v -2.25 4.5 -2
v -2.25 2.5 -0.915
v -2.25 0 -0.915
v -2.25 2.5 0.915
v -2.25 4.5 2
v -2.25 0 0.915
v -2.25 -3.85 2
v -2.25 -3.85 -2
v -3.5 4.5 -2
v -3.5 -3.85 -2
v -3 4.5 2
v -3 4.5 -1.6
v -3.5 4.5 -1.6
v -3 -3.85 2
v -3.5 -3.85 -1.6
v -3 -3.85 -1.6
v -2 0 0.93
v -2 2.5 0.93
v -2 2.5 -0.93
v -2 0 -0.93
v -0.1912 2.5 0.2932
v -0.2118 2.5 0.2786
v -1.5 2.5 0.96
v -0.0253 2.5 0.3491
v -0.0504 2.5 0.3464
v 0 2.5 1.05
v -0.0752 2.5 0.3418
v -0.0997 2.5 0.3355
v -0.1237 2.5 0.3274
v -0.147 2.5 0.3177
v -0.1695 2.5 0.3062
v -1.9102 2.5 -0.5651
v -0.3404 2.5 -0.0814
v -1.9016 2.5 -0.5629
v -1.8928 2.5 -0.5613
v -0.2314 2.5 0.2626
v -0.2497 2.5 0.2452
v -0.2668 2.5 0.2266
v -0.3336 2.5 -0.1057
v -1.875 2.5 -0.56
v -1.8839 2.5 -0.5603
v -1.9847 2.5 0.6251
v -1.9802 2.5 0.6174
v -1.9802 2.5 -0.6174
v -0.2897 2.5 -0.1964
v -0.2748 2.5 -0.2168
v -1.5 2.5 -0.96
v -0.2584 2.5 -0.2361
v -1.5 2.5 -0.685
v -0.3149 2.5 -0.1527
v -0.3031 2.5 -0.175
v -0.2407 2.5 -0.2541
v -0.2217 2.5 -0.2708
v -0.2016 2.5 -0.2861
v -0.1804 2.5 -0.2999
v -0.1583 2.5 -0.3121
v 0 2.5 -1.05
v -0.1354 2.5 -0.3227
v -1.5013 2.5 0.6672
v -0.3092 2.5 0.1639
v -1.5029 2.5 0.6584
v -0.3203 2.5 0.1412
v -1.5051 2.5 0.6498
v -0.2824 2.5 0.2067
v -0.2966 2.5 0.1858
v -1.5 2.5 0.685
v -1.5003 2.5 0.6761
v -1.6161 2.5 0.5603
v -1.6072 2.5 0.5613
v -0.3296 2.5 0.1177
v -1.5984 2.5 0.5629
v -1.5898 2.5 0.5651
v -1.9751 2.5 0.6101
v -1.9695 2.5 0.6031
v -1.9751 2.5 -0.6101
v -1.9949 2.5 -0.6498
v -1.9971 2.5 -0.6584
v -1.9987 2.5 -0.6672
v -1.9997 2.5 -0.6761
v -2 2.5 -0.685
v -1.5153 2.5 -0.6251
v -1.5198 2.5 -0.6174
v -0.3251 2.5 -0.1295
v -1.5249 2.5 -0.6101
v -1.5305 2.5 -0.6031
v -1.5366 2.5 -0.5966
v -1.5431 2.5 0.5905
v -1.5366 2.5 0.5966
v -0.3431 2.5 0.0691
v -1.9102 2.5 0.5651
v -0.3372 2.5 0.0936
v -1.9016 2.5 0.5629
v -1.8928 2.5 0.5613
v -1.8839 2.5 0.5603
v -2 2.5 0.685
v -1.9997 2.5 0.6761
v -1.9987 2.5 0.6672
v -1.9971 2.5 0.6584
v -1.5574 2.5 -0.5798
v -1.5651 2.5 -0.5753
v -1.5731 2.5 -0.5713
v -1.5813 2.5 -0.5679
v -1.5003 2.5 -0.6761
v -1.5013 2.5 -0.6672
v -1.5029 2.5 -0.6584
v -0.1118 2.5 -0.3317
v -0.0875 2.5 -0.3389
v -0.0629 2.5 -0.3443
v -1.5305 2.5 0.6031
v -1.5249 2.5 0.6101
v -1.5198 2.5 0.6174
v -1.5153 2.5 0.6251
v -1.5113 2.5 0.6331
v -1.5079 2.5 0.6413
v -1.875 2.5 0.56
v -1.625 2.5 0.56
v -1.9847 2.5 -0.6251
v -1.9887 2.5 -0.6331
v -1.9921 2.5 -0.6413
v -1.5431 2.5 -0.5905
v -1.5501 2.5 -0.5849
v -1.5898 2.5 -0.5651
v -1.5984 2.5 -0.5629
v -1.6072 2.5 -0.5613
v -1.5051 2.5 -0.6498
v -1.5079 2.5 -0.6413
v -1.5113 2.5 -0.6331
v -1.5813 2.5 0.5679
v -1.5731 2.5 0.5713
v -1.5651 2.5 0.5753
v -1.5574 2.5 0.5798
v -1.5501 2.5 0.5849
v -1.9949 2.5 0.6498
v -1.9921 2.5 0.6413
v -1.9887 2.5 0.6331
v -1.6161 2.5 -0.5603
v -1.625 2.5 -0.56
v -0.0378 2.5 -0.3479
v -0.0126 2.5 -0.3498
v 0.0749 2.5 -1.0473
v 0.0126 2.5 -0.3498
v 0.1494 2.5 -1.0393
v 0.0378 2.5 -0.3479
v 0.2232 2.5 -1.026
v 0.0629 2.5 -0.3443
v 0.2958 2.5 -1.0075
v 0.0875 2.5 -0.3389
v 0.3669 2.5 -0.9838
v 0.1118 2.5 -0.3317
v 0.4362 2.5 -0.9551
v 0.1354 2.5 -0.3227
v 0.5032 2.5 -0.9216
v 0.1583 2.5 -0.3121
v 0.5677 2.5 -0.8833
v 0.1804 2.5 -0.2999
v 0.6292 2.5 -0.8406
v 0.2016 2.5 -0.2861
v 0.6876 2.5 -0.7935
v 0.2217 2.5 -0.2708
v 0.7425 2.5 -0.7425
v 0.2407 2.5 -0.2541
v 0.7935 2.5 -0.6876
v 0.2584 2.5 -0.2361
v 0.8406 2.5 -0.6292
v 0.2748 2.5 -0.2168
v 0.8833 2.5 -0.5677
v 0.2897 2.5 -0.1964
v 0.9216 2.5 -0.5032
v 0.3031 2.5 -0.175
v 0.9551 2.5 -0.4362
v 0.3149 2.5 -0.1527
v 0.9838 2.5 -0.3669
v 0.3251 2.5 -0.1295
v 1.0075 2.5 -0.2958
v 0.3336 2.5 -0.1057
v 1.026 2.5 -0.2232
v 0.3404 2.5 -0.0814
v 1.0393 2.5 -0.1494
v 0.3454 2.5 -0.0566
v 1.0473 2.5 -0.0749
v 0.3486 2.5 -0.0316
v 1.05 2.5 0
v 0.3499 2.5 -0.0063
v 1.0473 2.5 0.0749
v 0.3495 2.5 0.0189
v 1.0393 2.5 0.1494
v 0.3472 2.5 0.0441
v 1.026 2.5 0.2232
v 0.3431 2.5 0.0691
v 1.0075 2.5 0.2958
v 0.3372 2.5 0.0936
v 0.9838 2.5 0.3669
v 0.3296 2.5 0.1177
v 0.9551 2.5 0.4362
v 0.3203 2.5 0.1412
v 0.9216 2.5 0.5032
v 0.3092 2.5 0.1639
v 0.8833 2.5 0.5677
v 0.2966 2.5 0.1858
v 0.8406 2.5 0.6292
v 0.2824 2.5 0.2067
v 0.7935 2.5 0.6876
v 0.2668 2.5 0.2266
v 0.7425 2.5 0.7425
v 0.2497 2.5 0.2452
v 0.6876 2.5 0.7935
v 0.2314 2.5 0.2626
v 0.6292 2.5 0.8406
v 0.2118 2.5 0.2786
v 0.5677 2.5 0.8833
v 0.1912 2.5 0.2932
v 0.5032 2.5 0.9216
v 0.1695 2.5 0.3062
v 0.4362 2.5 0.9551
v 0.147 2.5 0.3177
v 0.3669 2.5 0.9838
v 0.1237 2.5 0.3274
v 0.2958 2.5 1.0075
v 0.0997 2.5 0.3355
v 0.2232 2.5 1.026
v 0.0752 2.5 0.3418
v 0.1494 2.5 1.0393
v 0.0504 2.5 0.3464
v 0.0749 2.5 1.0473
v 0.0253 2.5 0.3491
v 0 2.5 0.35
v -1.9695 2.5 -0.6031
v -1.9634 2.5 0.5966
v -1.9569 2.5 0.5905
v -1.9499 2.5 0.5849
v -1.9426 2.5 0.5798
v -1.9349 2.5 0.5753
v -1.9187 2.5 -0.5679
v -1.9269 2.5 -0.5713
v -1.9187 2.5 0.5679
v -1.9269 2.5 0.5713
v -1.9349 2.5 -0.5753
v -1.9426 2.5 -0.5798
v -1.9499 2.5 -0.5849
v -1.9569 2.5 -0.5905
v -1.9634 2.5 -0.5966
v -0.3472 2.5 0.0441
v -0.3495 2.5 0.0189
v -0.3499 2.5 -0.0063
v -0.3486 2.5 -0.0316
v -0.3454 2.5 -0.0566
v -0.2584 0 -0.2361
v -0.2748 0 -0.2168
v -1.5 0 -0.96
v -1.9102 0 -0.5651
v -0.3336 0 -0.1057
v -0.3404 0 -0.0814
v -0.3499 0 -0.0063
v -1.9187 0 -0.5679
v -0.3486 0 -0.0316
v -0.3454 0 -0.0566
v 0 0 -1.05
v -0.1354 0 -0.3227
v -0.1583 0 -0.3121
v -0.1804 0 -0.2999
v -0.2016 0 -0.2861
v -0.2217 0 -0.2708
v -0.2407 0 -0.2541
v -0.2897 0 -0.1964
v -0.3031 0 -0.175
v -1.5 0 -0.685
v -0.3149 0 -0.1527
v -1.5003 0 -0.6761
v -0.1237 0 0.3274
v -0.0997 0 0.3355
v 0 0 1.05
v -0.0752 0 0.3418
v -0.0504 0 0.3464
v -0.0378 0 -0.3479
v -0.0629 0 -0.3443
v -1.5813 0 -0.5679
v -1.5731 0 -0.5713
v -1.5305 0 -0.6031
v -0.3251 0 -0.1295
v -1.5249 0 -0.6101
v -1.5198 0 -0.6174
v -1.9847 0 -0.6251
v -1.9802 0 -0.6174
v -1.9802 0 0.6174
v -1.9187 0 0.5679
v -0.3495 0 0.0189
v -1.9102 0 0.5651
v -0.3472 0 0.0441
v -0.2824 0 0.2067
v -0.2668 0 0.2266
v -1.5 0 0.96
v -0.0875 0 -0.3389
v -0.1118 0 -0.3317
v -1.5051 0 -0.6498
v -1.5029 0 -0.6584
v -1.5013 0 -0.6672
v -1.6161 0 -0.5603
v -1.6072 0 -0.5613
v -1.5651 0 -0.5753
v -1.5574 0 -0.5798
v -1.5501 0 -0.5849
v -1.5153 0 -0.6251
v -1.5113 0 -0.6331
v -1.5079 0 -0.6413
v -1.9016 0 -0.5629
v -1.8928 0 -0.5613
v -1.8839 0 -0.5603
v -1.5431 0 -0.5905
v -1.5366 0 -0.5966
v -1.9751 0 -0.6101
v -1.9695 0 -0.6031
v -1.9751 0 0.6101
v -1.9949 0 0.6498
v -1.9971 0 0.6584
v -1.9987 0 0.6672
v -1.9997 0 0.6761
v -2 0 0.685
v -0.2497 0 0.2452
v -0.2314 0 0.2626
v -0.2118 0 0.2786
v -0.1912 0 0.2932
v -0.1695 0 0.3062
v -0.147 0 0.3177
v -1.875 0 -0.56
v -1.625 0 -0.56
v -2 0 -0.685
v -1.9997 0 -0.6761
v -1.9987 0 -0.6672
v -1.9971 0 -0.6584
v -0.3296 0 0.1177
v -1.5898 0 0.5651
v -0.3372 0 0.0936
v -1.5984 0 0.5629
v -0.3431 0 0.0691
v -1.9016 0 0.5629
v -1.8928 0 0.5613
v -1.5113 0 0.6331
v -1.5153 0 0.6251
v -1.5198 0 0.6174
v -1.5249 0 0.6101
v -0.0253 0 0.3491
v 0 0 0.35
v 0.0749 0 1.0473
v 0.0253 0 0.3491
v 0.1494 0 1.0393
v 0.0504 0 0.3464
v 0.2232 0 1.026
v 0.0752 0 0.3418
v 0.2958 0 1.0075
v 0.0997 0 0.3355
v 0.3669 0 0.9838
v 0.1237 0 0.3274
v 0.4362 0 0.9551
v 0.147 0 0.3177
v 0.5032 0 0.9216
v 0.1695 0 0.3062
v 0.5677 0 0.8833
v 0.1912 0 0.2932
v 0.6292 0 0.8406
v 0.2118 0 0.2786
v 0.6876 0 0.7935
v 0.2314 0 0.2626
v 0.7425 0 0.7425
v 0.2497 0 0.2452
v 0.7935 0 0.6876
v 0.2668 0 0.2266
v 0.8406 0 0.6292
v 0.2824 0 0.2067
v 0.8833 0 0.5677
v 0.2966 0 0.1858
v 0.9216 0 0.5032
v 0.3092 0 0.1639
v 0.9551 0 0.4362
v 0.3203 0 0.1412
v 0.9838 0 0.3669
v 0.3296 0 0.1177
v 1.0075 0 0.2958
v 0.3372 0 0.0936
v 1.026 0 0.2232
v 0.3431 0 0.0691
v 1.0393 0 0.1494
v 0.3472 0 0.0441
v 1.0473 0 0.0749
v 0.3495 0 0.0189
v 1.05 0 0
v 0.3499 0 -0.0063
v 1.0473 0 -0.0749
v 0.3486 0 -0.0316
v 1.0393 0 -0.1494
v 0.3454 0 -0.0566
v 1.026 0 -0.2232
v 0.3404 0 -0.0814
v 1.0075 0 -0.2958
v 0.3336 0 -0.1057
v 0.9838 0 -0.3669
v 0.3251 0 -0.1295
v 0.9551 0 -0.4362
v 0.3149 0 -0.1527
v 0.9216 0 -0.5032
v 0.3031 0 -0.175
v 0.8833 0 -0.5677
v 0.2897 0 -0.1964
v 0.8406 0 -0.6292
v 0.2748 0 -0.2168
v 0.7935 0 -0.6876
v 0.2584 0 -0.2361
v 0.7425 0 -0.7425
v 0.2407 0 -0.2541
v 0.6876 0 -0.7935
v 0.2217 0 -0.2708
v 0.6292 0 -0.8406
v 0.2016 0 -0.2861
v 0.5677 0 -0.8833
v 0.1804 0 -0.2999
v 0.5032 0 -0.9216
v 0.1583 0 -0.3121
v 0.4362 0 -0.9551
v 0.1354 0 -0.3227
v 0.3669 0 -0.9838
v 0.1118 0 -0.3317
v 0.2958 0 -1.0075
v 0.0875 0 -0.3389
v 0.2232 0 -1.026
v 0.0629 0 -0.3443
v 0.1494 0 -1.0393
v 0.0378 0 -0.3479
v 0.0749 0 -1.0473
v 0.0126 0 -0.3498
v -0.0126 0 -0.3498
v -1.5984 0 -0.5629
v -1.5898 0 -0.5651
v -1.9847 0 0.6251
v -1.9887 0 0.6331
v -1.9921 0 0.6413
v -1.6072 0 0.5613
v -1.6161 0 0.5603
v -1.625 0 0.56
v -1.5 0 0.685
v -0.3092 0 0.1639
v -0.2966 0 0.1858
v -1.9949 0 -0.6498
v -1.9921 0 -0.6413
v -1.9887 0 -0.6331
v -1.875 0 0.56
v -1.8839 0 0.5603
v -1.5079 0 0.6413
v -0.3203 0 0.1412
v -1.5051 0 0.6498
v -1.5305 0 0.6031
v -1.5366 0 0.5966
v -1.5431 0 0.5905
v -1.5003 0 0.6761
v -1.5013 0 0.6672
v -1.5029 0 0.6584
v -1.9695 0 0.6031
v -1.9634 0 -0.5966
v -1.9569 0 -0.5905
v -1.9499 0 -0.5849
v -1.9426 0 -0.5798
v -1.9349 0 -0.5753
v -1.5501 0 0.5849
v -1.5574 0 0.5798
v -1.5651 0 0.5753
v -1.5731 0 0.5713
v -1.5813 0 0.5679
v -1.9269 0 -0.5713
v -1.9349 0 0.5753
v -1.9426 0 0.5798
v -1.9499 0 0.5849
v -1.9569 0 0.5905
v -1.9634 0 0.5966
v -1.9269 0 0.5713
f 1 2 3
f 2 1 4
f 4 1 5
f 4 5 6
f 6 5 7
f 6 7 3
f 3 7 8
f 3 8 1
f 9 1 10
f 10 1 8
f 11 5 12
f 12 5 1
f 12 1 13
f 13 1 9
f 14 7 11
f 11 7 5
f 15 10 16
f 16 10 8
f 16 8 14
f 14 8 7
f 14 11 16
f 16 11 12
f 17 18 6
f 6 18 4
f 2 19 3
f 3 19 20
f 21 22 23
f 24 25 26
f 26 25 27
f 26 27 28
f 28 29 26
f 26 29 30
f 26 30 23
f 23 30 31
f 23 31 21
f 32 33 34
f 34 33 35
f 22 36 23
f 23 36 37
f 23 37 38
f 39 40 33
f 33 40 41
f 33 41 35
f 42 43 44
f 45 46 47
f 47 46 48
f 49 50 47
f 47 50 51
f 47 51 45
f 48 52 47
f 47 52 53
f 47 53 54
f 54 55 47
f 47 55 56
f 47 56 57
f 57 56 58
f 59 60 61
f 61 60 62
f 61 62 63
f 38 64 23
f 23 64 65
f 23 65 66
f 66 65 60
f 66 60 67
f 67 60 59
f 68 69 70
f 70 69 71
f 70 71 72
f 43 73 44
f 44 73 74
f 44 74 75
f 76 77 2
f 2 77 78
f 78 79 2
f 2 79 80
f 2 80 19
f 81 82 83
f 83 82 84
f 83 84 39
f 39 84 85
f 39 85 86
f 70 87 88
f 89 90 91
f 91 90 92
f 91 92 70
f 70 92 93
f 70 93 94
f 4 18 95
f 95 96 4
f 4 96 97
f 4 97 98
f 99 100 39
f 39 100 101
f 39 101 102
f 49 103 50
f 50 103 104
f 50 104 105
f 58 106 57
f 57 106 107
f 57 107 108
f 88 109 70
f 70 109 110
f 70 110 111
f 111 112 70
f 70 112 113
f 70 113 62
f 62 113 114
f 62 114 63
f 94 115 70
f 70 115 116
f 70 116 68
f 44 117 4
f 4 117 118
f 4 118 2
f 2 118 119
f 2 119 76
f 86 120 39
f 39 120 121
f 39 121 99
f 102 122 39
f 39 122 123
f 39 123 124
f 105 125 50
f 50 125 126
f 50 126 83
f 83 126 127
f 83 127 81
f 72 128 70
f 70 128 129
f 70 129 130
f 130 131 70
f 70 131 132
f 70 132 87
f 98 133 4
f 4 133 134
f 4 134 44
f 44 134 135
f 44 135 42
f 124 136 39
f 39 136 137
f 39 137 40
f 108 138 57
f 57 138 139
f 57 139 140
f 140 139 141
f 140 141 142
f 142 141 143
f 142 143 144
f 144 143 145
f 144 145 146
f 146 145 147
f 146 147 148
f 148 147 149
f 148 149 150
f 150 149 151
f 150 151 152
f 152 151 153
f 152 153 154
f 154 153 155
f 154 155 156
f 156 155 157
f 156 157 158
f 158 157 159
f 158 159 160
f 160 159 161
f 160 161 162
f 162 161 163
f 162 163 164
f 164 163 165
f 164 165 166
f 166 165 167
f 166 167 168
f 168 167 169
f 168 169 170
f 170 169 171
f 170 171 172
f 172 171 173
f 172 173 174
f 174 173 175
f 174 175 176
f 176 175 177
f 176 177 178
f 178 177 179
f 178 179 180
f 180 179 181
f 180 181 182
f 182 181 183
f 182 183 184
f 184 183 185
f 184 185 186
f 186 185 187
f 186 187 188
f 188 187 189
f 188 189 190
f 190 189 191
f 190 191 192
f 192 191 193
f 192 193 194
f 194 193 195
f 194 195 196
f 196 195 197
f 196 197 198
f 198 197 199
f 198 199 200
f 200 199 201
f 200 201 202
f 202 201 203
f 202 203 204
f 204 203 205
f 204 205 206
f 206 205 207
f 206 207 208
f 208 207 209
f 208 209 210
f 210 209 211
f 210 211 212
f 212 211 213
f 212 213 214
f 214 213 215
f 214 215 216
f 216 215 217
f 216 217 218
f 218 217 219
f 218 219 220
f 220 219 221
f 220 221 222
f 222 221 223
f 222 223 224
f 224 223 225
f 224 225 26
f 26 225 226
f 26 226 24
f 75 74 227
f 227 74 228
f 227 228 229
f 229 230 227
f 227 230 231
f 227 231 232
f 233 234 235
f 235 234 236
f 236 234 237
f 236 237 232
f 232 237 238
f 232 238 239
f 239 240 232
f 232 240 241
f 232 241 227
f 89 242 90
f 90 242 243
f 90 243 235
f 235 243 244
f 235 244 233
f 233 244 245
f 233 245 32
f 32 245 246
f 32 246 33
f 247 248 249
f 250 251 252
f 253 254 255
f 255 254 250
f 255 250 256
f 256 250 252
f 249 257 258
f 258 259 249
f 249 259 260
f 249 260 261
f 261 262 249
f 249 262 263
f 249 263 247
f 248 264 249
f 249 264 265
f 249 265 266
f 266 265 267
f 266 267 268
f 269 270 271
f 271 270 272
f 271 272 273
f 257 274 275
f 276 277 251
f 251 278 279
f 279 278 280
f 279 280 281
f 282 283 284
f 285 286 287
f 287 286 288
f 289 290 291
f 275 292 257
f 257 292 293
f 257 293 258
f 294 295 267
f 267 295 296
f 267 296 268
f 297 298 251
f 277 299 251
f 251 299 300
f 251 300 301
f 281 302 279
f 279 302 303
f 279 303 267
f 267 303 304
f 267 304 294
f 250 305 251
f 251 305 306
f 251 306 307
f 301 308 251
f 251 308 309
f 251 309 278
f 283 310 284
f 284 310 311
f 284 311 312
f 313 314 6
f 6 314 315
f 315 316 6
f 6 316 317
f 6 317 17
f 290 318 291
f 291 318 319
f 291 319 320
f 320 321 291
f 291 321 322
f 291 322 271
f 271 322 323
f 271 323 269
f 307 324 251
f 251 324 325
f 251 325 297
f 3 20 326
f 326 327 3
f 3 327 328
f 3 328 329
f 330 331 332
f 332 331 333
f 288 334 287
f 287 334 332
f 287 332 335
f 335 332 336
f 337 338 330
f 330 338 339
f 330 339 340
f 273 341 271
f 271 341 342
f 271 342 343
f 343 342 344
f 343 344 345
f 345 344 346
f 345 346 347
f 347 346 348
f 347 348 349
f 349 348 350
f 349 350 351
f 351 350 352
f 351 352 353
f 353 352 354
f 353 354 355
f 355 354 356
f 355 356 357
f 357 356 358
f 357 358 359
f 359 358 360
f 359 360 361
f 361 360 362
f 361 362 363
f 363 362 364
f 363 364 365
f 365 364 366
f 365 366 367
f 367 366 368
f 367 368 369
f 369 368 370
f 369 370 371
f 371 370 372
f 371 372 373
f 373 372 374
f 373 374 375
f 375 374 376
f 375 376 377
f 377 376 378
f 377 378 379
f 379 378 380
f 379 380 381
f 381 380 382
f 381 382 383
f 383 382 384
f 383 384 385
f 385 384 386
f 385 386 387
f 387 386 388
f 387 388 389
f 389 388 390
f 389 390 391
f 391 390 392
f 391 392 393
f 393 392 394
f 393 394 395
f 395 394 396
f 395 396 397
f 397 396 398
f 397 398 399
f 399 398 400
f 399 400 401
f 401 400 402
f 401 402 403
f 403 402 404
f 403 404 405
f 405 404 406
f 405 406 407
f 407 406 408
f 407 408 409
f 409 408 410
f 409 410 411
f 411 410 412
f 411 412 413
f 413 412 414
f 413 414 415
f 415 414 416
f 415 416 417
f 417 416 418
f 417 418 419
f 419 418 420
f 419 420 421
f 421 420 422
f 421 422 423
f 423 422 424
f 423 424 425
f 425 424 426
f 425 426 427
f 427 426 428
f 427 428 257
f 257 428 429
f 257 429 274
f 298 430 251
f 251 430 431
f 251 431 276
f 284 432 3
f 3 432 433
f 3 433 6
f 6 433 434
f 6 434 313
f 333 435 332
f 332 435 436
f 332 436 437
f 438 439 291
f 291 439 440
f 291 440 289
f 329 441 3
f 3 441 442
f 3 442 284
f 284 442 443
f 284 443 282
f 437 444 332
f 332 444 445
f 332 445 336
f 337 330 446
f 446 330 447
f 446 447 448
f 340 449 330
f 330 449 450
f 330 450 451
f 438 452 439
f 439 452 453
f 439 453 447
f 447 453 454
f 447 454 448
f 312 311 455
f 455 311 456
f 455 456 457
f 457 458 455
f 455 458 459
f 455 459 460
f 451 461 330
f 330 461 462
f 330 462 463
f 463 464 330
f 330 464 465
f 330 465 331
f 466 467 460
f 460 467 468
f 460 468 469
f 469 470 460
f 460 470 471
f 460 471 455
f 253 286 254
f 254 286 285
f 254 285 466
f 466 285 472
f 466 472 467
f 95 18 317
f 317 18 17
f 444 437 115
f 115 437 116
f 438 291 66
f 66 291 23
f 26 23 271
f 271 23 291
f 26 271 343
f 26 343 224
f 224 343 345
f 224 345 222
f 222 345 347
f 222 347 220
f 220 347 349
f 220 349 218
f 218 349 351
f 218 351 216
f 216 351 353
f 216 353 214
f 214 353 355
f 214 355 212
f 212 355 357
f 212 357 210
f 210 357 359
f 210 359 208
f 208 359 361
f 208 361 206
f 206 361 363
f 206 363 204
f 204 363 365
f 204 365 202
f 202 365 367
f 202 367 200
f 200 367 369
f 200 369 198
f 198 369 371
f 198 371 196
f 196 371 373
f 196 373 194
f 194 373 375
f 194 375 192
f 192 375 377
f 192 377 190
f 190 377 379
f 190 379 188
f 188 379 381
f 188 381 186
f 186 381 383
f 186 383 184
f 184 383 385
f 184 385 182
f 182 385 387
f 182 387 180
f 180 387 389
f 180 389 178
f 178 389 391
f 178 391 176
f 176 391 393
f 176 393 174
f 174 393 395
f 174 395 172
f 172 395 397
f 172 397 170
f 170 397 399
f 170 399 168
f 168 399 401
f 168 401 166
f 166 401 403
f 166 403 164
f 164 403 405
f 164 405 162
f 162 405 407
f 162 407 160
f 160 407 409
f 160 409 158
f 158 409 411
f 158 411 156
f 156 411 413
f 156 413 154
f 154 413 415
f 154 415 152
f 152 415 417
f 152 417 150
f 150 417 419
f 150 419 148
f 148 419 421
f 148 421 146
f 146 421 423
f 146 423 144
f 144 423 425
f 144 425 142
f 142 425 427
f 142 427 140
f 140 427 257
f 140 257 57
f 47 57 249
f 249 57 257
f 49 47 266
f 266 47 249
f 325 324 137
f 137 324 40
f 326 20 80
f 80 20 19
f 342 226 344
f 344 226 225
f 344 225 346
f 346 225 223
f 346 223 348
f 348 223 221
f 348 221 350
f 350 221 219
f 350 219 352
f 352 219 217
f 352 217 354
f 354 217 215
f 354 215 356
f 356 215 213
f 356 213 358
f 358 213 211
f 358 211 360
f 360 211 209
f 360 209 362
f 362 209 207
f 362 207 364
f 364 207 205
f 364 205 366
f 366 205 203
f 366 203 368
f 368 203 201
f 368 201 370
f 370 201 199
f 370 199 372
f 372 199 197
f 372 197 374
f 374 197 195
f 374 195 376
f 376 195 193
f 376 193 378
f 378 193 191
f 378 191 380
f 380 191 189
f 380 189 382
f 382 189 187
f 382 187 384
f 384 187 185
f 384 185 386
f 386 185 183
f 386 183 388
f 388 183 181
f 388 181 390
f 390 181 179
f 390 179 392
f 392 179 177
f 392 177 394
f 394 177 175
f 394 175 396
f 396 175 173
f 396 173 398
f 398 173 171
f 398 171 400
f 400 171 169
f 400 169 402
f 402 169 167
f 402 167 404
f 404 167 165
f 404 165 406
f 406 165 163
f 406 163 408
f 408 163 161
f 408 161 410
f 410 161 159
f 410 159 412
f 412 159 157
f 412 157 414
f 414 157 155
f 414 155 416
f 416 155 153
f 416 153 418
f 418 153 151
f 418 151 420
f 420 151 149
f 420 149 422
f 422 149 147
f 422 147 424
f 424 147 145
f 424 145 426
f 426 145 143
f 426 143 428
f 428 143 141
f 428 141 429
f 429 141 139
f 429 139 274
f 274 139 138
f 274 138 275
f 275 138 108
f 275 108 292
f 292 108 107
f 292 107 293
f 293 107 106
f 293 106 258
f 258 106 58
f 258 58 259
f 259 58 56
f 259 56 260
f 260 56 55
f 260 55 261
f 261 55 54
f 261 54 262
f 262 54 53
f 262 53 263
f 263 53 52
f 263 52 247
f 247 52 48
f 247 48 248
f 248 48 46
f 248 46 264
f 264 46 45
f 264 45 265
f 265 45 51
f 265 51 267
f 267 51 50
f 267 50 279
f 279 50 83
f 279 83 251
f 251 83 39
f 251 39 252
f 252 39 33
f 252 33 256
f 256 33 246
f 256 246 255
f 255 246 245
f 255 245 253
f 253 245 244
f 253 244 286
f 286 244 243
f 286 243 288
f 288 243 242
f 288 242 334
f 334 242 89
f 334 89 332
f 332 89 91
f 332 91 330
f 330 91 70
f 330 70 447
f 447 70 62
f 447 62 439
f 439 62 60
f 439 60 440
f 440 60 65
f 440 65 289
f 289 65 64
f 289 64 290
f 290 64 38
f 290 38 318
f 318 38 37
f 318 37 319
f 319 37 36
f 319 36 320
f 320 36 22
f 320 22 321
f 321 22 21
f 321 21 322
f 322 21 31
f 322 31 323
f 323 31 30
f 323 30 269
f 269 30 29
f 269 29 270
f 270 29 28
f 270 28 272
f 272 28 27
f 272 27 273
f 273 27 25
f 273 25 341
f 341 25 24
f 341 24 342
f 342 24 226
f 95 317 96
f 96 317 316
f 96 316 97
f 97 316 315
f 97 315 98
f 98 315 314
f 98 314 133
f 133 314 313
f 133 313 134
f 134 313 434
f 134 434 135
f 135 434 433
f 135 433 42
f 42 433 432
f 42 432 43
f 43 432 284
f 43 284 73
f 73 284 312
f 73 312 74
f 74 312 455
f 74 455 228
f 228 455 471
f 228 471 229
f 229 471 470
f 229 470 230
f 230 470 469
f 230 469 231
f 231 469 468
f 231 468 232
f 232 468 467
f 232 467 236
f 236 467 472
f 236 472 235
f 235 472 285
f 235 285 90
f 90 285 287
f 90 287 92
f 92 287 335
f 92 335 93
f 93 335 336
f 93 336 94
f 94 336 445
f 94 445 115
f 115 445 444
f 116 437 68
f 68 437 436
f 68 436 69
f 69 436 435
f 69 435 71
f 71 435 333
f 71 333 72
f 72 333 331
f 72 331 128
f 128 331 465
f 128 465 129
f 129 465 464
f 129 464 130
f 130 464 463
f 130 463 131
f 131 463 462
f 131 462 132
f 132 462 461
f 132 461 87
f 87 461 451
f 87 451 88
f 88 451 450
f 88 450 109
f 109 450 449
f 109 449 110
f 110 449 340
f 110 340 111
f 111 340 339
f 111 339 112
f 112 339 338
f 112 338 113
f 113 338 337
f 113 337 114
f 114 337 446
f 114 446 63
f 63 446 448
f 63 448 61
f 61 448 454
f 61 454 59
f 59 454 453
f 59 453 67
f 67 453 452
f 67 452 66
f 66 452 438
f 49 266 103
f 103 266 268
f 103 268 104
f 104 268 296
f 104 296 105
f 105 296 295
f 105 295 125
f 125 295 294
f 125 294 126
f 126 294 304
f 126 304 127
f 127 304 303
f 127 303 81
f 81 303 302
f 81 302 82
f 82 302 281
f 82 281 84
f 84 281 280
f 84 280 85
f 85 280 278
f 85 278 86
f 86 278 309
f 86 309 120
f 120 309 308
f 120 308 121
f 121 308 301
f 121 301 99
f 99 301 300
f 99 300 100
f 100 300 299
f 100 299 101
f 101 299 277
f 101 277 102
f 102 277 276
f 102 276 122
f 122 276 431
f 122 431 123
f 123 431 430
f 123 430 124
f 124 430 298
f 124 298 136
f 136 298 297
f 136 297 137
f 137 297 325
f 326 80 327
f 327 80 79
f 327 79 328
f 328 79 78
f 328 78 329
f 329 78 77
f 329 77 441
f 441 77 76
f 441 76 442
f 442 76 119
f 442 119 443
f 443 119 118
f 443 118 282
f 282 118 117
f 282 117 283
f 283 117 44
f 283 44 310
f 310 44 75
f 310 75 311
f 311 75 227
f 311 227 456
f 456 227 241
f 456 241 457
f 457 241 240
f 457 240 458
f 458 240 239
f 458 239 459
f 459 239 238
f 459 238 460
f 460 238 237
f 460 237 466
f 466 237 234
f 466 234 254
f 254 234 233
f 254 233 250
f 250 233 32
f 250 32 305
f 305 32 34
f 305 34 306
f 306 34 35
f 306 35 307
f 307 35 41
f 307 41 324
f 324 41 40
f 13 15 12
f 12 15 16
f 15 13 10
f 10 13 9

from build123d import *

# Parameters (mm, degrees)
BOSS_EXTRUDE1_DEPTH      = 2.5
SKETCH4_R                = 0.35
THROUGH_HOLES_DEPTH      = 4.688156721
FILLET1_R                = 0.125
BOSS_EXTRUDE4_DEPTH      = 0.5
BOSS_EXTRUDE4_DEPTH_BACK = 0.25
SKETCH11_W               = 4
SKETCH11_H               = 8.35
SKETCH12_W               = 0.4
SKETCH12_H               = 8.35
BOSS_EXTRUDE5_DEPTH      = 0.5


with BuildPart() as part:
    # Sketch3 → Boss-Extrude1 (new body)
    with BuildSketch(Plane(origin=(0, 0, 0), x_dir=(1, 0, 0), z_dir=(0, 1, 0))):
        with BuildLine():
            Line((-2.5, 0.9), (-2, 0.93))
            Line((-2, 0.93), (-2, 0.56))
            Line((-2, 0.56), (-1.5, 0.56))
            Line((-1.5, 0.56), (-1.5, 0.96))
            Line((-1.5, 0.96), (0, 1.05))
            ThreePointArc((0, 1.05), (1.05, 0), (0, -1.05))
            Line((0, -1.05), (-1.5, -0.96))
            Line((-1.5, -0.96), (-1.5, -0.56))
            Line((-1.5, -0.56), (-2, -0.56))
            Line((-2, -0.56), (-2, -0.93))
            Line((-2, -0.93), (-2.5, -0.9))
            Line((-2.5, -0.9), (-2.5, 0.9))
        make_face()
    extrude(amount=BOSS_EXTRUDE1_DEPTH)

    # Sketch4 → Through Holes (cut, through all)
    with BuildSketch(Plane(origin=(0, 2.5, 0), x_dir=(1, 0, 0), z_dir=(0, 1, 0))):
        with Locations(Location((0, 0, 0), (0, 0, 270))):
            Circle(SKETCH4_R)
    extrude(amount=-THROUGH_HOLES_DEPTH, mode=Mode.SUBTRACT)

    # Fillet1
    fillet1_edges = [part.edges().sort_by_distance(p)[0] for p in [
        (-2, 1.25, -0.56),
        (-1.5, 1.25, -0.56),
        (-1.5, 1.25, 0.56),
        (-2, 1.25, 0.56),
    ]]
    fillet(fillet1_edges, radius=FILLET1_R)

    # Sketch11 → Boss-Extrude4 (add, two sides: drawn at the far end of the back side and taken through both)
    with BuildSketch(Plane.ZY.offset(2.5).offset(-BOSS_EXTRUDE4_DEPTH_BACK)):
        with Locations((0, 0.325)):
            Rectangle(SKETCH11_W, SKETCH11_H)
    extrude(amount=BOSS_EXTRUDE4_DEPTH + BOSS_EXTRUDE4_DEPTH_BACK)

    # Sketch12 → Boss-Extrude5 (add)
    with BuildSketch(Plane.ZY.offset(3)):
        with Locations((-1.8, 0.325)):
            Rectangle(SKETCH12_W, SKETCH12_H)
    extrude(amount=BOSS_EXTRUDE5_DEPTH)


solid = part.part
